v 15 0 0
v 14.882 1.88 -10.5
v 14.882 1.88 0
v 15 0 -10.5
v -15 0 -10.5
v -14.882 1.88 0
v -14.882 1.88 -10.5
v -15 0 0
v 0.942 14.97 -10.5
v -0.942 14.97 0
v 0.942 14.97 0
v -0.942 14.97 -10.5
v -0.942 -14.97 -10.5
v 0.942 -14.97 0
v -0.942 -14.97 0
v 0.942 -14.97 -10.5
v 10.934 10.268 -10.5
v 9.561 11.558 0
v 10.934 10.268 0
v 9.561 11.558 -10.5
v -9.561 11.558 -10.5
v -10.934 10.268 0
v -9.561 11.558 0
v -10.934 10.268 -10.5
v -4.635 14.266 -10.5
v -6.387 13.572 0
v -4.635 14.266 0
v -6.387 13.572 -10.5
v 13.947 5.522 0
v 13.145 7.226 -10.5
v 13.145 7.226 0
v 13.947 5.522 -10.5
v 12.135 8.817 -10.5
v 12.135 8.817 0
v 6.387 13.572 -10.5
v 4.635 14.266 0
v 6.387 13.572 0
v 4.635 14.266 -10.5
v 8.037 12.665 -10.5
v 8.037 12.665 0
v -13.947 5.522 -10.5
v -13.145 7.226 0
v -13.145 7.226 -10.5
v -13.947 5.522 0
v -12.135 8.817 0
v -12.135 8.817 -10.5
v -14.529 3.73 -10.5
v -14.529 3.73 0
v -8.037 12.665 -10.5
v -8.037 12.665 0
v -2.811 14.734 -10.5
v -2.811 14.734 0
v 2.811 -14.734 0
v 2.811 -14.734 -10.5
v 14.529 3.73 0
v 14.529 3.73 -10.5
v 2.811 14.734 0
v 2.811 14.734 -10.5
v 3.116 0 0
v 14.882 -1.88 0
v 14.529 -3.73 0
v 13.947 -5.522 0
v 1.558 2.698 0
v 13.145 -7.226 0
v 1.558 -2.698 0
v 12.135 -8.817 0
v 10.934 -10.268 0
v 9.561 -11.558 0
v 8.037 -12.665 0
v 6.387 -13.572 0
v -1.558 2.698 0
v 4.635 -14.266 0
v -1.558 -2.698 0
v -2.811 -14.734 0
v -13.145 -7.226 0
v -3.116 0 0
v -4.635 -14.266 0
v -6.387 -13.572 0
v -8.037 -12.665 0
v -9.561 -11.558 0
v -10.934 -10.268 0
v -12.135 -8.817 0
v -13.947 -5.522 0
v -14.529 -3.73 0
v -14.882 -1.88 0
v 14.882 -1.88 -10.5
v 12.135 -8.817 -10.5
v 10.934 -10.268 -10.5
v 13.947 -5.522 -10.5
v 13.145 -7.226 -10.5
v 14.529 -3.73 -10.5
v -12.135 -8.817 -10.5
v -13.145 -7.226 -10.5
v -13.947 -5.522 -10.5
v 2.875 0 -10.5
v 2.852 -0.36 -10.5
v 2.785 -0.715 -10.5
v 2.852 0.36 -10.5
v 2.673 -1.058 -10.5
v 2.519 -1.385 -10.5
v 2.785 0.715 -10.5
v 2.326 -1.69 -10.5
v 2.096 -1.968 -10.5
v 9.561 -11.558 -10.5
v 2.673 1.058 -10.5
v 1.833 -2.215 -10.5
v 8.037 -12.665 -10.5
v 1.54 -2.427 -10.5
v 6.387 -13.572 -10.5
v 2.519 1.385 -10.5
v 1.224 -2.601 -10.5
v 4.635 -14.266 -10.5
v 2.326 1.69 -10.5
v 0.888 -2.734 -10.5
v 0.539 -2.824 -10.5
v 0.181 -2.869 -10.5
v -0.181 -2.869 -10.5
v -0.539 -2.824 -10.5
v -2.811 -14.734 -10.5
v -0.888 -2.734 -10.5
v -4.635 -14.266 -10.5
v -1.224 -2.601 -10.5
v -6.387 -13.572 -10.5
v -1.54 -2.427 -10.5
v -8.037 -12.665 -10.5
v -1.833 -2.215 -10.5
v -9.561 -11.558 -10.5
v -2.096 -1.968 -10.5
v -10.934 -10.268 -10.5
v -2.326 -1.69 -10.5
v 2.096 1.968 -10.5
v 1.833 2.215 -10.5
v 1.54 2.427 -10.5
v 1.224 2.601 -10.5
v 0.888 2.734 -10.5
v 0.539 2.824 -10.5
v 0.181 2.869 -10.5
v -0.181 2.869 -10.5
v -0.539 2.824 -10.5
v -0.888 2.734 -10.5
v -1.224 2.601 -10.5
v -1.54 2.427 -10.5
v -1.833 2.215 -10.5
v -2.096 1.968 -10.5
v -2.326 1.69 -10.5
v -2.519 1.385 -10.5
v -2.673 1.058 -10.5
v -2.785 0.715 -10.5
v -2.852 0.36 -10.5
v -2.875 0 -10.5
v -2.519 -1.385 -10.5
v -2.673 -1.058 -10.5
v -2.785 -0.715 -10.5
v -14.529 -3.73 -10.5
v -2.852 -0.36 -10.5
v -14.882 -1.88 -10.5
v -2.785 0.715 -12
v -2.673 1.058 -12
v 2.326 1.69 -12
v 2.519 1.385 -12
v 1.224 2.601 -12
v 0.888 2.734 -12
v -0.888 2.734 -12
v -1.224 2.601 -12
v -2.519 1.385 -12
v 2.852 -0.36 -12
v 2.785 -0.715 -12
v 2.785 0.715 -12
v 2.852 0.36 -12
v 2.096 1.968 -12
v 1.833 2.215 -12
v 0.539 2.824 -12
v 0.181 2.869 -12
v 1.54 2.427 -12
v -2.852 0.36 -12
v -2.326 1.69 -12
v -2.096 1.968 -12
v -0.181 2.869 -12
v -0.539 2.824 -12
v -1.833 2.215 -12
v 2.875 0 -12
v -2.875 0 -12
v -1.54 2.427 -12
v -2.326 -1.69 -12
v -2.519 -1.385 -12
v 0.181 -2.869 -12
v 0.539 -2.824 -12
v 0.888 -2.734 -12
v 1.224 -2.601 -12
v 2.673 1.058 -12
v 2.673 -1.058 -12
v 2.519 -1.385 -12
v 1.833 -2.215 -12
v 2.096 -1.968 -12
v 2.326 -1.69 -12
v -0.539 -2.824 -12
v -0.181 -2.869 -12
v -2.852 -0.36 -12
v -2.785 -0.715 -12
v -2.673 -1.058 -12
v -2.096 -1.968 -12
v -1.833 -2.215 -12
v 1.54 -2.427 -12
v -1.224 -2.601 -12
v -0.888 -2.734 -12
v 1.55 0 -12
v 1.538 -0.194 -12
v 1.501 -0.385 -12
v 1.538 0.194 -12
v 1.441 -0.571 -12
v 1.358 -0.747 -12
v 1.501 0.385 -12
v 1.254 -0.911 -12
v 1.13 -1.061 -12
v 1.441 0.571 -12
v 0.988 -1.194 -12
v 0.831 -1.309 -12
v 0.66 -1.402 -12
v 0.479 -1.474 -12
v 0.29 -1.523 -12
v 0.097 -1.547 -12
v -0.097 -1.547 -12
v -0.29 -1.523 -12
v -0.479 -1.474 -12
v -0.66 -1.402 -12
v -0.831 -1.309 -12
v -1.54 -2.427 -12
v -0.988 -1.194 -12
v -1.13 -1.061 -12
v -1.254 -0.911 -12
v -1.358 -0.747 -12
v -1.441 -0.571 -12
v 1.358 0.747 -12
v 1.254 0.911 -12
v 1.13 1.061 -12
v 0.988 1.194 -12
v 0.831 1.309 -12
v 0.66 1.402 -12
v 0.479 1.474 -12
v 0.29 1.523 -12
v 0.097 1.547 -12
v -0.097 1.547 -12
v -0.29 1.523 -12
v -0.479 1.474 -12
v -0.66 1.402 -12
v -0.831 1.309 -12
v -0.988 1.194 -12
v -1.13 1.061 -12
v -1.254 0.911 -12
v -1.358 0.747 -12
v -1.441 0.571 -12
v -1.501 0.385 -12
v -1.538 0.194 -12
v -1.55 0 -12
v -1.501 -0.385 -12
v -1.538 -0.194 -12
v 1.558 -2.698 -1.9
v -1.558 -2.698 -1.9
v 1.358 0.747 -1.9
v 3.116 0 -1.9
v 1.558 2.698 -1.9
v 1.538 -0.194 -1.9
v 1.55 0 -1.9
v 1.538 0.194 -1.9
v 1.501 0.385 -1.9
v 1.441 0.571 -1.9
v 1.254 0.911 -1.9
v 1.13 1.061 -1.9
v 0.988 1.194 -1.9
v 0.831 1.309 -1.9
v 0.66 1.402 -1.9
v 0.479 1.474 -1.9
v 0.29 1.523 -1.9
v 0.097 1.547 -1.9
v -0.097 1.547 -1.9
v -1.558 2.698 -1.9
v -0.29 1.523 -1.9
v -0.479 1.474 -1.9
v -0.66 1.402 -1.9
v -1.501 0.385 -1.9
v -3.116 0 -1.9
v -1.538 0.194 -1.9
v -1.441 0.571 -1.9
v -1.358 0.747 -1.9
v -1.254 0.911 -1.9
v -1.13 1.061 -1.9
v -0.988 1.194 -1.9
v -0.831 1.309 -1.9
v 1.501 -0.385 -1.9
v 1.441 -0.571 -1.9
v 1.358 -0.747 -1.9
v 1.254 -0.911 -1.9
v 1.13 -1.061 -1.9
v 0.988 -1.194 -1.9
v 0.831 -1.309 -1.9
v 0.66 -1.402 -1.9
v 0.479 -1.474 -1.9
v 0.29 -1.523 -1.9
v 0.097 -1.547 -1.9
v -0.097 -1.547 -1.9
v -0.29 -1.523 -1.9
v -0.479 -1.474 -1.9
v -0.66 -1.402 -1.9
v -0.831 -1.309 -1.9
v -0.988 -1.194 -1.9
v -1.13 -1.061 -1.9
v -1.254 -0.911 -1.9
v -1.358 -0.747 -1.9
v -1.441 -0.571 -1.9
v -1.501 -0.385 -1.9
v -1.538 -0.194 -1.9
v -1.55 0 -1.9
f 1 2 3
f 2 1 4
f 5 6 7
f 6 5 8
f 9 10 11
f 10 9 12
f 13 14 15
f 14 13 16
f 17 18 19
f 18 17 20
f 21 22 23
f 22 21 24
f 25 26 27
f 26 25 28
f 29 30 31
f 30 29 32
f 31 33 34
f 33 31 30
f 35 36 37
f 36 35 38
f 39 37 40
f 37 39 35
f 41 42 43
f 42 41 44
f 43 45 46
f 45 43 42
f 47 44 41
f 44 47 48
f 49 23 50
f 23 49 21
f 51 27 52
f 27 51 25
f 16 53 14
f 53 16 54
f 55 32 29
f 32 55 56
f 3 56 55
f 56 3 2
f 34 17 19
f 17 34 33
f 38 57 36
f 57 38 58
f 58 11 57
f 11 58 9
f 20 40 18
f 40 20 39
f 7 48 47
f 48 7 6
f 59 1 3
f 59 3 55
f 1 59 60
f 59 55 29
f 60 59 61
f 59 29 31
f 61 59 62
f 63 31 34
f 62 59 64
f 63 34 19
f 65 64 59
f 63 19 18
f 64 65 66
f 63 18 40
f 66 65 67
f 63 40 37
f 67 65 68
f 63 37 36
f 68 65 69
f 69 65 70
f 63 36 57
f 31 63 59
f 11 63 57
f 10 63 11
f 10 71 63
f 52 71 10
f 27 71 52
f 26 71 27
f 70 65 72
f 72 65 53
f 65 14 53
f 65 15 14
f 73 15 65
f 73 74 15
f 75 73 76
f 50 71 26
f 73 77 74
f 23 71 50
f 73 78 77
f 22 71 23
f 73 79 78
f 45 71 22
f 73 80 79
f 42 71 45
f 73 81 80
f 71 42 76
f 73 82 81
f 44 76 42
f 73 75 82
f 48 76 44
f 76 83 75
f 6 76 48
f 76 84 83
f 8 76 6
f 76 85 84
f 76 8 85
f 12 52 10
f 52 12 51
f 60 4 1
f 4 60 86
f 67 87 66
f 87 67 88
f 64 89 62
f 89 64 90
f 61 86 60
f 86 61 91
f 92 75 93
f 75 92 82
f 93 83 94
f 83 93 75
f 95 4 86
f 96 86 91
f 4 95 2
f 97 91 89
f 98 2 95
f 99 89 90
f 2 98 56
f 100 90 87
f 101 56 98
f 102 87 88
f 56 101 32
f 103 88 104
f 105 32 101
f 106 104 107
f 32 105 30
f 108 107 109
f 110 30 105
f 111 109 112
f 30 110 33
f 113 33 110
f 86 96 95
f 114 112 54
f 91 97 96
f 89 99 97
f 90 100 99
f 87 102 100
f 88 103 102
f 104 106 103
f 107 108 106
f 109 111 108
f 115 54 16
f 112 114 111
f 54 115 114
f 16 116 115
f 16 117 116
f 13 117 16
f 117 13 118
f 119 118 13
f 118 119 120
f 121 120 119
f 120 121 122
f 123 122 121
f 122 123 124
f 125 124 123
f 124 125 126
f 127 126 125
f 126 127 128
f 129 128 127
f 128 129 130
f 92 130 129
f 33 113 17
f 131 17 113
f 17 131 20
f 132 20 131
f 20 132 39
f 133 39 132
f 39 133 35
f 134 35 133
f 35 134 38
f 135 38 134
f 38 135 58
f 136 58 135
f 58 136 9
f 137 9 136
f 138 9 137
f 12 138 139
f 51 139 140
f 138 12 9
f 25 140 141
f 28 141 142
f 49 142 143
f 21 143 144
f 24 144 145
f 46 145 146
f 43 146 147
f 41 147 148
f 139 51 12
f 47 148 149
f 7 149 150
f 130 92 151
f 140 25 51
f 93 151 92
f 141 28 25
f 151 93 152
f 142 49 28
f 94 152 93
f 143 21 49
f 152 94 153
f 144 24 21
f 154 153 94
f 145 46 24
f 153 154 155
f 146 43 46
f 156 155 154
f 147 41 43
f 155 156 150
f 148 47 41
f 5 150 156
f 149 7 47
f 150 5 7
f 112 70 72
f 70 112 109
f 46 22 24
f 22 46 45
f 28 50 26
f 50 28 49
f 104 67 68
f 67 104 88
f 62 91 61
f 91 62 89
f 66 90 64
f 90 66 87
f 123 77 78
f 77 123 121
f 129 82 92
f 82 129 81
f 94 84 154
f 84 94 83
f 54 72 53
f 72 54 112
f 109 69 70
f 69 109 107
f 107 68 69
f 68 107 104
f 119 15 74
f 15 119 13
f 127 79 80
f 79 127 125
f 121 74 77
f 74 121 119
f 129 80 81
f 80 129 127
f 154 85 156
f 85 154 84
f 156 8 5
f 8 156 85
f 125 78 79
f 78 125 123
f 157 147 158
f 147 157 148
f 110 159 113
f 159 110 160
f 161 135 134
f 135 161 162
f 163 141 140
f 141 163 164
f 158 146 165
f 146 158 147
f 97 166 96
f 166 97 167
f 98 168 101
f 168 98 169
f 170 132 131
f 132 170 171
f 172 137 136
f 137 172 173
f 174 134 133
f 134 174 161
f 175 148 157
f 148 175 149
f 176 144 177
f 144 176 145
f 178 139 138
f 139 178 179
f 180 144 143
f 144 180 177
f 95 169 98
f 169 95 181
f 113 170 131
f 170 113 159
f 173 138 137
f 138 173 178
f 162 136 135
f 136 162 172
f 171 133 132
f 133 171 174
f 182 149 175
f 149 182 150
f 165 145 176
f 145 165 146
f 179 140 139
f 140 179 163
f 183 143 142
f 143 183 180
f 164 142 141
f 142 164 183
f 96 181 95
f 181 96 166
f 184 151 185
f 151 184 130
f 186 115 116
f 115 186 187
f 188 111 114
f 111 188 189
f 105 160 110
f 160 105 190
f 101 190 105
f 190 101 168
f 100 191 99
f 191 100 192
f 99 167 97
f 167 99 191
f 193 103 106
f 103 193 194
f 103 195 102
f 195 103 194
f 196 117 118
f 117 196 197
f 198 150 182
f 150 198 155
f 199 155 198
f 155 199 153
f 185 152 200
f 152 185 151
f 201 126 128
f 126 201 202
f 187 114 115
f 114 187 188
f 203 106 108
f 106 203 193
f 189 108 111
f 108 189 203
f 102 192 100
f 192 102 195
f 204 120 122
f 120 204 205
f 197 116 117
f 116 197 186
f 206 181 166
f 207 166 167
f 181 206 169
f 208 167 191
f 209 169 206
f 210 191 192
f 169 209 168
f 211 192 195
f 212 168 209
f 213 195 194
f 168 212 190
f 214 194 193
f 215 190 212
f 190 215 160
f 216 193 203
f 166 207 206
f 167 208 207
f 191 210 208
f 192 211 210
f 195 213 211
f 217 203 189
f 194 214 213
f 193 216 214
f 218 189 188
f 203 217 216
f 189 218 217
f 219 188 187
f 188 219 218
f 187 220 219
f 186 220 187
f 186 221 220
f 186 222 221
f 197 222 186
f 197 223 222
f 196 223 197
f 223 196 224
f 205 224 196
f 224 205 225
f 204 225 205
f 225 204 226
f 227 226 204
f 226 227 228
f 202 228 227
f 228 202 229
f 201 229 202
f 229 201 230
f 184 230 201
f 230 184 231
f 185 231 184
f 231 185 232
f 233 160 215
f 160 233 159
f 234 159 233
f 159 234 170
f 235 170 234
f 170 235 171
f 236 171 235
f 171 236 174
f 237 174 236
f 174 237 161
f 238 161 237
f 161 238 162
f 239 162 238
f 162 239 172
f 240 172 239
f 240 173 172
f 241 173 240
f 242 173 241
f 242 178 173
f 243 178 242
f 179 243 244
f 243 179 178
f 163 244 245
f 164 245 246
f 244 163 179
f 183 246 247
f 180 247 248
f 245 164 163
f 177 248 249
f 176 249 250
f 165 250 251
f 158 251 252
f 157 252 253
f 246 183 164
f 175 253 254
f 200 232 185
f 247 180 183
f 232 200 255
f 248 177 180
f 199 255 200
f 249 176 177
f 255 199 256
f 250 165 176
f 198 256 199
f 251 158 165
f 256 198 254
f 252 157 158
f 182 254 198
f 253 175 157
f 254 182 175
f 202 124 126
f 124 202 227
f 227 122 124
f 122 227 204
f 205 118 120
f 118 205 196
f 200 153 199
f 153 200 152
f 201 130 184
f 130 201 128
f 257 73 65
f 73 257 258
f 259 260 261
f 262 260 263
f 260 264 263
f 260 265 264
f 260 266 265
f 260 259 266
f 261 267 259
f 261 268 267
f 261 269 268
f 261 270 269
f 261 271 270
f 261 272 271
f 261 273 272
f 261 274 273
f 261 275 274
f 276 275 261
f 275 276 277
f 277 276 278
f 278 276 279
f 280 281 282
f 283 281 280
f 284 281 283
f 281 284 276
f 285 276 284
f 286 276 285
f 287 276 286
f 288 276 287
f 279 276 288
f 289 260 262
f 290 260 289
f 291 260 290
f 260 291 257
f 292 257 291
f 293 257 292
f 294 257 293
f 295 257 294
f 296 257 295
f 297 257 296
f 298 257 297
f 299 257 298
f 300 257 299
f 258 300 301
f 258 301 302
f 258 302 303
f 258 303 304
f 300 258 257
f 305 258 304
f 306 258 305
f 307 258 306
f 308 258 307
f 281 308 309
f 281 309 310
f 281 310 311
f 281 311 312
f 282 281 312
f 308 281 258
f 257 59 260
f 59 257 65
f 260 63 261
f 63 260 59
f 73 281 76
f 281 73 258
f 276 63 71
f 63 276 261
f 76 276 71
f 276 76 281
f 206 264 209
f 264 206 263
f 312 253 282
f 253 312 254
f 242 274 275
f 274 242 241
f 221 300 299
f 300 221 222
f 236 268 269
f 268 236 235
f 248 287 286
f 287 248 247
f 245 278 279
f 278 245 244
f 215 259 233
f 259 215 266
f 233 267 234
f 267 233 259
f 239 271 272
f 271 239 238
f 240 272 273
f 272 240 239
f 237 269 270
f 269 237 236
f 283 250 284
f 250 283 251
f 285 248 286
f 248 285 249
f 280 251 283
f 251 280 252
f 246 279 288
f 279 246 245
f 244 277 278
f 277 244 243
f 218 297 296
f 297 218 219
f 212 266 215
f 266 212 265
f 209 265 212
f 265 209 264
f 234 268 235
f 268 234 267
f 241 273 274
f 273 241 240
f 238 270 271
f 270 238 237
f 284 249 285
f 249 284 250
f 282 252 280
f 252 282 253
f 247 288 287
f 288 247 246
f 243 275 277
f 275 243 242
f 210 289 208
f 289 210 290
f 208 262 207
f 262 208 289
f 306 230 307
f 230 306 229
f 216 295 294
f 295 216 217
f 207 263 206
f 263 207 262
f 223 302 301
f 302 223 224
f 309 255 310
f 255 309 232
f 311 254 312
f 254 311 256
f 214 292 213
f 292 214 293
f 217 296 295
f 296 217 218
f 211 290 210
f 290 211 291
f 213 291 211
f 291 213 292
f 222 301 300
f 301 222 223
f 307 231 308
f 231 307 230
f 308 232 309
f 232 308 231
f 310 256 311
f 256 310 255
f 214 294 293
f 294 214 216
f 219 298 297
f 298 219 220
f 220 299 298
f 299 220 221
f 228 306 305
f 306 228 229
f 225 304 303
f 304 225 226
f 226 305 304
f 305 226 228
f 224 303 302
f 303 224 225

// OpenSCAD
$fn = 50;

difference() {
	union() {
		translate(v = [0, 0, -10.5]) {
			cylinder(h = 10.5, r = 15.0);
		}
		#translate(v = [0, 0, -12.0]) {
			cylinder(h = 12, r = 2.875);
		}
	}
	union() {
		translate(v = [0, 0, 0]) {
			rotate(a = [0, 0, 0]) {
				difference() {
					union() {
						translate(v = [0, 0, -1.9]) {
							linear_extrude(height = 1.9) {
								polygon(points = [[3.1158, 0.0], [1.5579000000000005, 2.698361953111554], [-1.5578999999999994, 2.6983619531115544], [-3.1158, 3.815754496783323e-16], [-1.5579000000000014, -2.6983619531115535], [1.557899999999998, -2.6983619531115552]]);
							}
						}
					}
					union();
				}
			}
		}
		#translate(v = [0, 0, -100.0]) {
			cylinder(h = 200, r = 1.55);
		}
	}
}
